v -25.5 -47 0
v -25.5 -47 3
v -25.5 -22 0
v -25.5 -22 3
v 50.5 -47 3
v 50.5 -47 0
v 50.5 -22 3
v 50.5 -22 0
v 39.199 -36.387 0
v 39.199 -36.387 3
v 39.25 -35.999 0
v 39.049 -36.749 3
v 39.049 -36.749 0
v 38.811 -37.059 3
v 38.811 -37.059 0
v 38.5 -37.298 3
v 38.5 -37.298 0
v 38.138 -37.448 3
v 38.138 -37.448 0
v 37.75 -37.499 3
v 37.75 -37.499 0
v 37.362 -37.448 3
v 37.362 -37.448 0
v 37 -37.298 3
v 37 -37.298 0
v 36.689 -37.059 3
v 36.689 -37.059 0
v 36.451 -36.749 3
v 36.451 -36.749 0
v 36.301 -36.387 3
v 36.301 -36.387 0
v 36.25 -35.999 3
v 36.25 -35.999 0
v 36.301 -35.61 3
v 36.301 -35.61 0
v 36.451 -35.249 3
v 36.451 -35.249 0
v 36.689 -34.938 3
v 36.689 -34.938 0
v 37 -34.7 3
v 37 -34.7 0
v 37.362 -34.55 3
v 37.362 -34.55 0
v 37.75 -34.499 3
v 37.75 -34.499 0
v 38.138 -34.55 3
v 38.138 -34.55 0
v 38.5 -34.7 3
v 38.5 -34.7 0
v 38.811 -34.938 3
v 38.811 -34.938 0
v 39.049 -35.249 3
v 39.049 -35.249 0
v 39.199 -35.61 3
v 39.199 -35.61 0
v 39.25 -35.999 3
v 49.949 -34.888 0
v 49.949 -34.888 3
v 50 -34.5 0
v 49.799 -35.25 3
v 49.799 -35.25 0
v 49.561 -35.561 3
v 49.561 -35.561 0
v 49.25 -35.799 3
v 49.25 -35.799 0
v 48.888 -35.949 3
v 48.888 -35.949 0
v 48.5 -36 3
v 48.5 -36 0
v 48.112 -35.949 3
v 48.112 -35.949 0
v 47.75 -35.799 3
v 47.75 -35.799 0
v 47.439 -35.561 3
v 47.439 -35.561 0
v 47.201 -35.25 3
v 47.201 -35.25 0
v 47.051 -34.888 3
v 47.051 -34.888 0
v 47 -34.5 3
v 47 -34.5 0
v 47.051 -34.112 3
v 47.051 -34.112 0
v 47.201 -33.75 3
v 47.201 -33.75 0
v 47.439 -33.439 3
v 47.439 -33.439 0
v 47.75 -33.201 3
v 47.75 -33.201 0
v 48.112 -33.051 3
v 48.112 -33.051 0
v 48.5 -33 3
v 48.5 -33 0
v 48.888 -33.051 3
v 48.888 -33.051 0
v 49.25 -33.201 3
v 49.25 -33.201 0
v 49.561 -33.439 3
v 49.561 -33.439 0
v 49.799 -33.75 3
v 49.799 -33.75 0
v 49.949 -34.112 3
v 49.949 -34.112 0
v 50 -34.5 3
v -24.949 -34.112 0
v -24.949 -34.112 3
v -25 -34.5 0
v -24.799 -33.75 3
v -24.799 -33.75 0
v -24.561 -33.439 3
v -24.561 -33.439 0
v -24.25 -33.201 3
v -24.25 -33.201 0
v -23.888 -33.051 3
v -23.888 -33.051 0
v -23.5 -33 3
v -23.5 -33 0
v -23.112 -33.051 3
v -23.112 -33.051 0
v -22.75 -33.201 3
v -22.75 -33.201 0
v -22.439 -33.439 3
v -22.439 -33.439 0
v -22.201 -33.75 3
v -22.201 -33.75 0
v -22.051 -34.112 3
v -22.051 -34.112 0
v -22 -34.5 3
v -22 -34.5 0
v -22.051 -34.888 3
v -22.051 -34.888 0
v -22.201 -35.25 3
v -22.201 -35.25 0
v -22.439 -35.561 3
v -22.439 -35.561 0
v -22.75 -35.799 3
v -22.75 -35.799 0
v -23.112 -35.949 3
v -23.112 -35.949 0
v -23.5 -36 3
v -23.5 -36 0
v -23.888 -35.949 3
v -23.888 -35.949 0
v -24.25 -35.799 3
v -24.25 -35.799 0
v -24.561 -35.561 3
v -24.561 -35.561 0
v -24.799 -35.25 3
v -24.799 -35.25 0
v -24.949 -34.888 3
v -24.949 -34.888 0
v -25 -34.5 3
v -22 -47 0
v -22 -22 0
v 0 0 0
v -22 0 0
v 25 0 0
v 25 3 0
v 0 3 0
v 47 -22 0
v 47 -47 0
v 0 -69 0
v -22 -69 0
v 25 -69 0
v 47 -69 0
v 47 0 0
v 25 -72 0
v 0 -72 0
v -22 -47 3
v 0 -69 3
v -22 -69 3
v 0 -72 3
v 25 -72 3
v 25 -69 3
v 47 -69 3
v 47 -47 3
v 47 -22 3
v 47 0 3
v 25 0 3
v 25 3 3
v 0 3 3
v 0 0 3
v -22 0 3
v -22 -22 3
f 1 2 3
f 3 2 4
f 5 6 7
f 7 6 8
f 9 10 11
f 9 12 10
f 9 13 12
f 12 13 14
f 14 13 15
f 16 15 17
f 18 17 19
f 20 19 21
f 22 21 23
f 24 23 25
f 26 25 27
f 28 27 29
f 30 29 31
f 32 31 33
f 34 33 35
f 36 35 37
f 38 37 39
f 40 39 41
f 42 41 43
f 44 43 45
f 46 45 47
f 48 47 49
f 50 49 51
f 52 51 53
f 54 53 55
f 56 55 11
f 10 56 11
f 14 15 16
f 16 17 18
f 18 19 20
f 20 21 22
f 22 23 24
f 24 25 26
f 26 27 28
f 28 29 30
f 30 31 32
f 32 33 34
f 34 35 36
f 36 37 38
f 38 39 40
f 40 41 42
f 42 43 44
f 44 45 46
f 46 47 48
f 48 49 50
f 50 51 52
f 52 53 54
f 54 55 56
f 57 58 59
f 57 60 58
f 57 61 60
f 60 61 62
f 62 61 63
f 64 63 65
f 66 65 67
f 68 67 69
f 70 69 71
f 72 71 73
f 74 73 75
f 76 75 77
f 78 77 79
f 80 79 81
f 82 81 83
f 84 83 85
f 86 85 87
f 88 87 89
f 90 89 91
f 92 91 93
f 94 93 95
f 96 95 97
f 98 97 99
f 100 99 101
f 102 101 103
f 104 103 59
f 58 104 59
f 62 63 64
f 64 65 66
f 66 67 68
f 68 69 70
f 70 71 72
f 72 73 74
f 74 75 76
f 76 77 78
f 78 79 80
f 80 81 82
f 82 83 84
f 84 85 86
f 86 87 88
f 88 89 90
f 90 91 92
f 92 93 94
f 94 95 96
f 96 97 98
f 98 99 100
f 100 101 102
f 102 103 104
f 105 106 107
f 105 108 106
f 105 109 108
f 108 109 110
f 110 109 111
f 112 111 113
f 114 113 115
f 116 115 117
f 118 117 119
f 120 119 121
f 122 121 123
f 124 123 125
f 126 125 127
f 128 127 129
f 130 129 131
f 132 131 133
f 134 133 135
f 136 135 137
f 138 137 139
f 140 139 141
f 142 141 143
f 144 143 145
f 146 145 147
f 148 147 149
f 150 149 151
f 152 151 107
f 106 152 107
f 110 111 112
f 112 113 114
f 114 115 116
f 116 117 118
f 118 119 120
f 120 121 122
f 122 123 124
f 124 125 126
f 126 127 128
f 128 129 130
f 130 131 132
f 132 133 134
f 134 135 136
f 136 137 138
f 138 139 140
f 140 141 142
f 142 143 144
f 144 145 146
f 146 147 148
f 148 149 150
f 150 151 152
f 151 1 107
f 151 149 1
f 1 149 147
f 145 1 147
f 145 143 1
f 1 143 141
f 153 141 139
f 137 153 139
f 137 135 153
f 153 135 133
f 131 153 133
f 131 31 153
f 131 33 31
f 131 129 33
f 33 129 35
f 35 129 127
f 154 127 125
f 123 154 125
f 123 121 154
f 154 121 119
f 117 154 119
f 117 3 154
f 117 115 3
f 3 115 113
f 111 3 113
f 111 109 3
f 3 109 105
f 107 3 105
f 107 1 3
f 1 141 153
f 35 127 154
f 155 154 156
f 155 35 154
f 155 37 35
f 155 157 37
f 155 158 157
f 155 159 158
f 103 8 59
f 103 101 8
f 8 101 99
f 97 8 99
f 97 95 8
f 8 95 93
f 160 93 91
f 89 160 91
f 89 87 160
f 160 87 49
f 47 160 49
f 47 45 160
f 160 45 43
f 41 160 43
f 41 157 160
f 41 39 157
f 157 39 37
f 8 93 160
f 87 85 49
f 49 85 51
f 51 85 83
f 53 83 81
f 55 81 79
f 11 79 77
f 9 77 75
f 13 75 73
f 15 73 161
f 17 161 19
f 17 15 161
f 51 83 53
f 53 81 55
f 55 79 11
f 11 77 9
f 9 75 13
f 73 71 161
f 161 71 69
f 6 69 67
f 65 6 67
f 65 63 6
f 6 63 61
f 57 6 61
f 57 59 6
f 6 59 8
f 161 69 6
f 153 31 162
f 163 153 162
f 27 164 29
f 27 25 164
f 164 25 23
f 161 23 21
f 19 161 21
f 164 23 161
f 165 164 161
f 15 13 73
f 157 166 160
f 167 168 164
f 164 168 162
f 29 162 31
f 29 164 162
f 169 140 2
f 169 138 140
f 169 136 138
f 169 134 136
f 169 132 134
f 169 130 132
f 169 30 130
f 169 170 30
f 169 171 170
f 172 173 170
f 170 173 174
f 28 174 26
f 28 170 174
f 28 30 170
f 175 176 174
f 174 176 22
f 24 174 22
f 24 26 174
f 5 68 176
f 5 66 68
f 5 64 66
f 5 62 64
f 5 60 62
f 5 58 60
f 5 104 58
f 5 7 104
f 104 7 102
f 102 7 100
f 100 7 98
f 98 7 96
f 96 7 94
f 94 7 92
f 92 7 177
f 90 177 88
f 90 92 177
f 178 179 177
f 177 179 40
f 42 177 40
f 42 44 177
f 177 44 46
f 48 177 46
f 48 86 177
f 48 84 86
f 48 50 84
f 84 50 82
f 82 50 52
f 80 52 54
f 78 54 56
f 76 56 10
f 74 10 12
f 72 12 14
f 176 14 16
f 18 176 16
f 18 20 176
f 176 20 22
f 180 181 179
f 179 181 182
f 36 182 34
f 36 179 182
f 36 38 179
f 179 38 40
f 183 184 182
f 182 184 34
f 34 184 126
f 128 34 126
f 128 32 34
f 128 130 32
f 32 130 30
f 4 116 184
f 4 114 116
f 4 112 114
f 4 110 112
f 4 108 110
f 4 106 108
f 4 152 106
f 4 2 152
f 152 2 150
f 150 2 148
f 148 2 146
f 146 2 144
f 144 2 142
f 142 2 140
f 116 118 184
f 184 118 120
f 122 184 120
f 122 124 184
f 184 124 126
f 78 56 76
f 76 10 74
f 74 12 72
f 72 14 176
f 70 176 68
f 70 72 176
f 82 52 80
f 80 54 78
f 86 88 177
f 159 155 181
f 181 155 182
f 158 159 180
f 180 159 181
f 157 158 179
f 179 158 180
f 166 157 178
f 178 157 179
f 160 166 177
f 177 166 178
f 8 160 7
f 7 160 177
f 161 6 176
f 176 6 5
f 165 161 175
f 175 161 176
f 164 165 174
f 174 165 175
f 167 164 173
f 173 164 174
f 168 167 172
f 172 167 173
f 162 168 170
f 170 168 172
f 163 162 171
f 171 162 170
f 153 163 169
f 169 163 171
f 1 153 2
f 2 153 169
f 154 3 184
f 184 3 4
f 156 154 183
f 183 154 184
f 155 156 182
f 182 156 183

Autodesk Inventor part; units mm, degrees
ref_plane "YZ Plane" through (0, 0, 0) normal (1, 0, 0) x (0, 1, 0)
ref_plane "XZ Plane" through (0, 0, 0) normal (0, 1, 0) x (-1, 0, 0)
ref_plane "XY Plane" through (0, 0, 0) normal (0, 0, 1) x (1, 0, 0)
sketch "Sketch1" plane through (0, 0, 0) normal (0, 0, 1) x (1, 0, 0)
  line L0 (0, 3) -> (25, 3) projected
  line L1 (0, 0) -> (0, 3) projected
  line L2 (25, 0) -> (25, 3) projected
  line L3 (25, 0) -> (47, 0) projected
  line L4 (47, 3) -> (47, -22) projected
  line L5 (47, -22) -> (50, -22) projected
  line L6 (50, -22) -> (50, -47) projected
  line L7 (47, -47) -> (50, -47) projected
  line L8 (47, -47) -> (47, -72) projected
  line L9 (25, -69) -> (47, -69) projected
  line L10 (25, -72) -> (25, -69) projected
  line L11 (0, -72) -> (25, -72) projected
  line L12 (0, -72) -> (0, -69) projected
  line L13 (-22, -69) -> (0, -69) projected
  line L14 (-22, -47) -> (-22, -72) projected
  line L15 (-25, -47) -> (-22, -47) projected
  line L16 (-25, -36) -> (-25, -47) projected
  line L17 (-25, -22) -> (-22, -22) projected
  line L18 (-22, 3) -> (-22, -22) projected
  line L19 (-22, 0) -> (0, 0) projected
  line L20 (-22, 0) -> (0, 0)
  line L21 (0, 0) -> (0, 3)
  line L22 (0, 3) -> (25, 3)
  line L23 (25, 3) -> (25, 0)
  line L24 (25, 0) -> (47, 0)
  line L25 (47, 0) -> (47, -22)
  line L26 (47, -22) -> (50, -22)
  line L27 (50, -47) -> (50, -22)
  line L28 (50, -47) -> (47, -47)
  line L29 (47, -47) -> (47, -69)
  line L30 (25, -69) -> (47, -69)
  line L31 (25, -69) -> (25, -72)
  line L32 (0, -72) -> (25, -72)
  line L33 (0, -72) -> (0, -69)
  line L34 (0, -69) -> (-22, -69)
  line L35 (-22, -47) -> (-25, -47)
  line L36 (-22, -47) -> (-22, -69)
  line L37 (-25, -47) -> (-25, -36)
  line L38 (-25, -22) -> (-22, -22)
  line L39 (-22, -22) -> (-22, 0)
  line L40 (0, 3) -> (0, 3)
  line L41 (0, 3) -> (0, 0)
  line L42 (25, 0) -> (25, 3)
  line L43 (25, 3) -> (25, 3)
  line L44 (-22, -22) -> (-25, -22)
  line L45 (-25, -22) -> (-25, -36)
extrude "Extrusion1" add sketch "Sketch1" along normal blind 3
sketch "Sketch5" plane through (0, 0, 3) normal (0, 0, 1) x (1, 0, 0)
  line L0 (38.5, -12.7) -> (44.5, -12.7) projected
  line L1 (0, 0) -> (-22, 0) projected
  line L2 (-22, -47) -> (-22, -69) projected
  line L3 (47, -22) -> (47, 0) projected
  circle A0 centre (48.5, -34.5) radius 1.5
  circle A1 centre (12.5, -70.5) radius 1.5
  circle A2 centre (-23.5, -34.5) radius 1.5
  circle A3 centre (11, 1.5) radius 1.5
  line L4 (25, 0) -> (25, 3) projected
  line L5 (-22, -22) -> (-25, -22) projected
  line L6 (-25, -22) -> (-25, -47) projected
  line L7 (-25, -47) -> (-22, -47) projected
  line L8 (-22, -69) -> (0, -69) projected
  line L9 (0, -69) -> (0, -72) projected
  line L10 (0, -72) -> (25, -72) projected
  line L11 (25, -72) -> (25, -69) projected
  line L12 (25, -69) -> (47, -69) projected
  line L13 (47, -69) -> (47, -47) projected
  line L14 (47, -47) -> (50, -47) projected
  line L15 (50, -47) -> (50, -22) projected
  line L16 (50, -22) -> (47, -22) projected
  line L17 (47, 0) -> (25, 0) projected
  line L18 (25, 3) -> (0, 3) projected
  line L19 (0, 3) -> (0, 0) projected
  line L20 (-22, 0) -> (-22, -22) projected
  dimension "d12" = 3
  dimension "d13" = 3
  dimension "d14" = 3
  dimension "d15" = 3
extrude "Extrusion4" cut sketch "Sketch5" against normal blind 25.4 contours A2 | A0
sketch "Sketch6" plane through (0, 0, 3) normal (0, 0, 1) x (1, 0, 0)
  circle A0 centre (37.75, -35.9986) radius 1.5 projected
  point P0 (0, 0)
extrude "Extrusion5" cut sketch "Sketch6" against normal blind 3
sketch "Sketch9" plane through (-25, -47, 0) normal (-1, 0, 0) x (0, 0, 1)
  line L0 (3, 12.5) -> (0, 12.5) projected
  line L1 (3, 25) -> (3, 12.5) projected
  line L2 (0, 25) -> (3, 25) projected
  line L3 (0, 25) -> (0, 12.5) projected
  line L4 (0, 12.5) -> (0, 0) projected
  line L5 (0, 0) -> (3, 0) projected
  line L6 (3, 12.5) -> (3, 0) projected
  point P0 (0, 47)
extrude "Extrusion8" add sketch "Sketch9" along normal blind 0.5
sketch "Sketch10" plane through (50, -47, 3) normal (1, 0, 0) x (0, 0, -1)
  line L0 (0, 12.5) -> (3, 12.5) projected
  line L1 (0, 0) -> (0, 12.5) projected
  line L2 (3, 0) -> (0, 0) projected
  line L3 (3, 0) -> (3, 12.5) projected
  line L4 (3, 12.5) -> (3, 25) projected
  line L5 (3, 25) -> (0, 25) projected
  line L6 (0, 12.5) -> (0, 25) projected
  point P0 (3, 47)
extrude "Extrusion9" add sketch "Sketch10" along normal blind 0.5
properties part number "tapa superior"
